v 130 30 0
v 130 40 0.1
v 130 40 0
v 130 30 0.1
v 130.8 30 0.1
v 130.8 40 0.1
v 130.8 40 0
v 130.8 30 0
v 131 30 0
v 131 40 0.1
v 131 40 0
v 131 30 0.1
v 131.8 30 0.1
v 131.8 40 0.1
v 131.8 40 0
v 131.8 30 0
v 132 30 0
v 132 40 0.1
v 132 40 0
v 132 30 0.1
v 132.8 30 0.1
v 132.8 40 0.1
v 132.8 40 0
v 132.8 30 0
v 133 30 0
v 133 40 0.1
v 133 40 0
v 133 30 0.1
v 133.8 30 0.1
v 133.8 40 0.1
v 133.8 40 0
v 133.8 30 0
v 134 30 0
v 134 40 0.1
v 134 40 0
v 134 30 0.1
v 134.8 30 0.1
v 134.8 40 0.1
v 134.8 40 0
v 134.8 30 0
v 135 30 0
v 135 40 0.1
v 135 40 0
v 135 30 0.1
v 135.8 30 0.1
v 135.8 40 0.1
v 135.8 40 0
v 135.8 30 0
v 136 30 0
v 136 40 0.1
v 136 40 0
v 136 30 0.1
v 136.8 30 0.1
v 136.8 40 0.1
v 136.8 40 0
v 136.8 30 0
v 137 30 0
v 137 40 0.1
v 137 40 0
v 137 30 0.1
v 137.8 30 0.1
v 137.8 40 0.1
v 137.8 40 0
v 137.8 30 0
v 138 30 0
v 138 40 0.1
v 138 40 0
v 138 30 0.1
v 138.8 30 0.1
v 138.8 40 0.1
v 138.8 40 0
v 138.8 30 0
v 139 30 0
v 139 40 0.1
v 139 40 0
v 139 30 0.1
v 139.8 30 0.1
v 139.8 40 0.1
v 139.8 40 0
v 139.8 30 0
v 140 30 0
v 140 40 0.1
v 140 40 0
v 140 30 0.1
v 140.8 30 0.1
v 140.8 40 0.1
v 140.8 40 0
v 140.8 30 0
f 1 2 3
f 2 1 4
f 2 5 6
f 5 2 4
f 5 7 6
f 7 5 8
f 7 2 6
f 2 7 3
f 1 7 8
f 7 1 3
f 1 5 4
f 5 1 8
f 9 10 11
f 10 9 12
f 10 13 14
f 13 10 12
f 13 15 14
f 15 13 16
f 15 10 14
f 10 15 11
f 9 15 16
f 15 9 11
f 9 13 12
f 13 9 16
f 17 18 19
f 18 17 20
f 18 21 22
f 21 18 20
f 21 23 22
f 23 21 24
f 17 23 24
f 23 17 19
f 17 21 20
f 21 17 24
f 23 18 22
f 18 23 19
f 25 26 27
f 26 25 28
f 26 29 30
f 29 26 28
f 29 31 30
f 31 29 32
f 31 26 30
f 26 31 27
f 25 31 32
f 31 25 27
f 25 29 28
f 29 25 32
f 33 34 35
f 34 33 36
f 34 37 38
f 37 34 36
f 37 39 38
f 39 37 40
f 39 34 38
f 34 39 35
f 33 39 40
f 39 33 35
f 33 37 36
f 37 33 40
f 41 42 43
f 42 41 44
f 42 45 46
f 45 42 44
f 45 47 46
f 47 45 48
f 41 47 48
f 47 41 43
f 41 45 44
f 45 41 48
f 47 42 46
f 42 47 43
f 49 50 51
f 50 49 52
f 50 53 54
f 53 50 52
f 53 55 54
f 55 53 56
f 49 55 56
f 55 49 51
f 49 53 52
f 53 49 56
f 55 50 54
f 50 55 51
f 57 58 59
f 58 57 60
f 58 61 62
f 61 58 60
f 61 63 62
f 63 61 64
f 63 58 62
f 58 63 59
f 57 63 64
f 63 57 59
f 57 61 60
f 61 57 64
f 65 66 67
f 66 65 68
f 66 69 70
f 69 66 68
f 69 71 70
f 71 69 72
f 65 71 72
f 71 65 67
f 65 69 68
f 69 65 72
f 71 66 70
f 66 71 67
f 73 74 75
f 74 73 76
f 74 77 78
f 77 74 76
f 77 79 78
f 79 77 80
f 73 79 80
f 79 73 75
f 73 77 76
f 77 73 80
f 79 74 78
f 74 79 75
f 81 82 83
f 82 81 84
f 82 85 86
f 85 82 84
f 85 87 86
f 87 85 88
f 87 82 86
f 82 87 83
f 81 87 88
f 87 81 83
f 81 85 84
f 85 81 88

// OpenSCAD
translate([10+120,10+20,0])
        for (i = [0 : 10]){
            translate([i,0,0])
                cube(size = [0.8,10,0.1]);
    }
